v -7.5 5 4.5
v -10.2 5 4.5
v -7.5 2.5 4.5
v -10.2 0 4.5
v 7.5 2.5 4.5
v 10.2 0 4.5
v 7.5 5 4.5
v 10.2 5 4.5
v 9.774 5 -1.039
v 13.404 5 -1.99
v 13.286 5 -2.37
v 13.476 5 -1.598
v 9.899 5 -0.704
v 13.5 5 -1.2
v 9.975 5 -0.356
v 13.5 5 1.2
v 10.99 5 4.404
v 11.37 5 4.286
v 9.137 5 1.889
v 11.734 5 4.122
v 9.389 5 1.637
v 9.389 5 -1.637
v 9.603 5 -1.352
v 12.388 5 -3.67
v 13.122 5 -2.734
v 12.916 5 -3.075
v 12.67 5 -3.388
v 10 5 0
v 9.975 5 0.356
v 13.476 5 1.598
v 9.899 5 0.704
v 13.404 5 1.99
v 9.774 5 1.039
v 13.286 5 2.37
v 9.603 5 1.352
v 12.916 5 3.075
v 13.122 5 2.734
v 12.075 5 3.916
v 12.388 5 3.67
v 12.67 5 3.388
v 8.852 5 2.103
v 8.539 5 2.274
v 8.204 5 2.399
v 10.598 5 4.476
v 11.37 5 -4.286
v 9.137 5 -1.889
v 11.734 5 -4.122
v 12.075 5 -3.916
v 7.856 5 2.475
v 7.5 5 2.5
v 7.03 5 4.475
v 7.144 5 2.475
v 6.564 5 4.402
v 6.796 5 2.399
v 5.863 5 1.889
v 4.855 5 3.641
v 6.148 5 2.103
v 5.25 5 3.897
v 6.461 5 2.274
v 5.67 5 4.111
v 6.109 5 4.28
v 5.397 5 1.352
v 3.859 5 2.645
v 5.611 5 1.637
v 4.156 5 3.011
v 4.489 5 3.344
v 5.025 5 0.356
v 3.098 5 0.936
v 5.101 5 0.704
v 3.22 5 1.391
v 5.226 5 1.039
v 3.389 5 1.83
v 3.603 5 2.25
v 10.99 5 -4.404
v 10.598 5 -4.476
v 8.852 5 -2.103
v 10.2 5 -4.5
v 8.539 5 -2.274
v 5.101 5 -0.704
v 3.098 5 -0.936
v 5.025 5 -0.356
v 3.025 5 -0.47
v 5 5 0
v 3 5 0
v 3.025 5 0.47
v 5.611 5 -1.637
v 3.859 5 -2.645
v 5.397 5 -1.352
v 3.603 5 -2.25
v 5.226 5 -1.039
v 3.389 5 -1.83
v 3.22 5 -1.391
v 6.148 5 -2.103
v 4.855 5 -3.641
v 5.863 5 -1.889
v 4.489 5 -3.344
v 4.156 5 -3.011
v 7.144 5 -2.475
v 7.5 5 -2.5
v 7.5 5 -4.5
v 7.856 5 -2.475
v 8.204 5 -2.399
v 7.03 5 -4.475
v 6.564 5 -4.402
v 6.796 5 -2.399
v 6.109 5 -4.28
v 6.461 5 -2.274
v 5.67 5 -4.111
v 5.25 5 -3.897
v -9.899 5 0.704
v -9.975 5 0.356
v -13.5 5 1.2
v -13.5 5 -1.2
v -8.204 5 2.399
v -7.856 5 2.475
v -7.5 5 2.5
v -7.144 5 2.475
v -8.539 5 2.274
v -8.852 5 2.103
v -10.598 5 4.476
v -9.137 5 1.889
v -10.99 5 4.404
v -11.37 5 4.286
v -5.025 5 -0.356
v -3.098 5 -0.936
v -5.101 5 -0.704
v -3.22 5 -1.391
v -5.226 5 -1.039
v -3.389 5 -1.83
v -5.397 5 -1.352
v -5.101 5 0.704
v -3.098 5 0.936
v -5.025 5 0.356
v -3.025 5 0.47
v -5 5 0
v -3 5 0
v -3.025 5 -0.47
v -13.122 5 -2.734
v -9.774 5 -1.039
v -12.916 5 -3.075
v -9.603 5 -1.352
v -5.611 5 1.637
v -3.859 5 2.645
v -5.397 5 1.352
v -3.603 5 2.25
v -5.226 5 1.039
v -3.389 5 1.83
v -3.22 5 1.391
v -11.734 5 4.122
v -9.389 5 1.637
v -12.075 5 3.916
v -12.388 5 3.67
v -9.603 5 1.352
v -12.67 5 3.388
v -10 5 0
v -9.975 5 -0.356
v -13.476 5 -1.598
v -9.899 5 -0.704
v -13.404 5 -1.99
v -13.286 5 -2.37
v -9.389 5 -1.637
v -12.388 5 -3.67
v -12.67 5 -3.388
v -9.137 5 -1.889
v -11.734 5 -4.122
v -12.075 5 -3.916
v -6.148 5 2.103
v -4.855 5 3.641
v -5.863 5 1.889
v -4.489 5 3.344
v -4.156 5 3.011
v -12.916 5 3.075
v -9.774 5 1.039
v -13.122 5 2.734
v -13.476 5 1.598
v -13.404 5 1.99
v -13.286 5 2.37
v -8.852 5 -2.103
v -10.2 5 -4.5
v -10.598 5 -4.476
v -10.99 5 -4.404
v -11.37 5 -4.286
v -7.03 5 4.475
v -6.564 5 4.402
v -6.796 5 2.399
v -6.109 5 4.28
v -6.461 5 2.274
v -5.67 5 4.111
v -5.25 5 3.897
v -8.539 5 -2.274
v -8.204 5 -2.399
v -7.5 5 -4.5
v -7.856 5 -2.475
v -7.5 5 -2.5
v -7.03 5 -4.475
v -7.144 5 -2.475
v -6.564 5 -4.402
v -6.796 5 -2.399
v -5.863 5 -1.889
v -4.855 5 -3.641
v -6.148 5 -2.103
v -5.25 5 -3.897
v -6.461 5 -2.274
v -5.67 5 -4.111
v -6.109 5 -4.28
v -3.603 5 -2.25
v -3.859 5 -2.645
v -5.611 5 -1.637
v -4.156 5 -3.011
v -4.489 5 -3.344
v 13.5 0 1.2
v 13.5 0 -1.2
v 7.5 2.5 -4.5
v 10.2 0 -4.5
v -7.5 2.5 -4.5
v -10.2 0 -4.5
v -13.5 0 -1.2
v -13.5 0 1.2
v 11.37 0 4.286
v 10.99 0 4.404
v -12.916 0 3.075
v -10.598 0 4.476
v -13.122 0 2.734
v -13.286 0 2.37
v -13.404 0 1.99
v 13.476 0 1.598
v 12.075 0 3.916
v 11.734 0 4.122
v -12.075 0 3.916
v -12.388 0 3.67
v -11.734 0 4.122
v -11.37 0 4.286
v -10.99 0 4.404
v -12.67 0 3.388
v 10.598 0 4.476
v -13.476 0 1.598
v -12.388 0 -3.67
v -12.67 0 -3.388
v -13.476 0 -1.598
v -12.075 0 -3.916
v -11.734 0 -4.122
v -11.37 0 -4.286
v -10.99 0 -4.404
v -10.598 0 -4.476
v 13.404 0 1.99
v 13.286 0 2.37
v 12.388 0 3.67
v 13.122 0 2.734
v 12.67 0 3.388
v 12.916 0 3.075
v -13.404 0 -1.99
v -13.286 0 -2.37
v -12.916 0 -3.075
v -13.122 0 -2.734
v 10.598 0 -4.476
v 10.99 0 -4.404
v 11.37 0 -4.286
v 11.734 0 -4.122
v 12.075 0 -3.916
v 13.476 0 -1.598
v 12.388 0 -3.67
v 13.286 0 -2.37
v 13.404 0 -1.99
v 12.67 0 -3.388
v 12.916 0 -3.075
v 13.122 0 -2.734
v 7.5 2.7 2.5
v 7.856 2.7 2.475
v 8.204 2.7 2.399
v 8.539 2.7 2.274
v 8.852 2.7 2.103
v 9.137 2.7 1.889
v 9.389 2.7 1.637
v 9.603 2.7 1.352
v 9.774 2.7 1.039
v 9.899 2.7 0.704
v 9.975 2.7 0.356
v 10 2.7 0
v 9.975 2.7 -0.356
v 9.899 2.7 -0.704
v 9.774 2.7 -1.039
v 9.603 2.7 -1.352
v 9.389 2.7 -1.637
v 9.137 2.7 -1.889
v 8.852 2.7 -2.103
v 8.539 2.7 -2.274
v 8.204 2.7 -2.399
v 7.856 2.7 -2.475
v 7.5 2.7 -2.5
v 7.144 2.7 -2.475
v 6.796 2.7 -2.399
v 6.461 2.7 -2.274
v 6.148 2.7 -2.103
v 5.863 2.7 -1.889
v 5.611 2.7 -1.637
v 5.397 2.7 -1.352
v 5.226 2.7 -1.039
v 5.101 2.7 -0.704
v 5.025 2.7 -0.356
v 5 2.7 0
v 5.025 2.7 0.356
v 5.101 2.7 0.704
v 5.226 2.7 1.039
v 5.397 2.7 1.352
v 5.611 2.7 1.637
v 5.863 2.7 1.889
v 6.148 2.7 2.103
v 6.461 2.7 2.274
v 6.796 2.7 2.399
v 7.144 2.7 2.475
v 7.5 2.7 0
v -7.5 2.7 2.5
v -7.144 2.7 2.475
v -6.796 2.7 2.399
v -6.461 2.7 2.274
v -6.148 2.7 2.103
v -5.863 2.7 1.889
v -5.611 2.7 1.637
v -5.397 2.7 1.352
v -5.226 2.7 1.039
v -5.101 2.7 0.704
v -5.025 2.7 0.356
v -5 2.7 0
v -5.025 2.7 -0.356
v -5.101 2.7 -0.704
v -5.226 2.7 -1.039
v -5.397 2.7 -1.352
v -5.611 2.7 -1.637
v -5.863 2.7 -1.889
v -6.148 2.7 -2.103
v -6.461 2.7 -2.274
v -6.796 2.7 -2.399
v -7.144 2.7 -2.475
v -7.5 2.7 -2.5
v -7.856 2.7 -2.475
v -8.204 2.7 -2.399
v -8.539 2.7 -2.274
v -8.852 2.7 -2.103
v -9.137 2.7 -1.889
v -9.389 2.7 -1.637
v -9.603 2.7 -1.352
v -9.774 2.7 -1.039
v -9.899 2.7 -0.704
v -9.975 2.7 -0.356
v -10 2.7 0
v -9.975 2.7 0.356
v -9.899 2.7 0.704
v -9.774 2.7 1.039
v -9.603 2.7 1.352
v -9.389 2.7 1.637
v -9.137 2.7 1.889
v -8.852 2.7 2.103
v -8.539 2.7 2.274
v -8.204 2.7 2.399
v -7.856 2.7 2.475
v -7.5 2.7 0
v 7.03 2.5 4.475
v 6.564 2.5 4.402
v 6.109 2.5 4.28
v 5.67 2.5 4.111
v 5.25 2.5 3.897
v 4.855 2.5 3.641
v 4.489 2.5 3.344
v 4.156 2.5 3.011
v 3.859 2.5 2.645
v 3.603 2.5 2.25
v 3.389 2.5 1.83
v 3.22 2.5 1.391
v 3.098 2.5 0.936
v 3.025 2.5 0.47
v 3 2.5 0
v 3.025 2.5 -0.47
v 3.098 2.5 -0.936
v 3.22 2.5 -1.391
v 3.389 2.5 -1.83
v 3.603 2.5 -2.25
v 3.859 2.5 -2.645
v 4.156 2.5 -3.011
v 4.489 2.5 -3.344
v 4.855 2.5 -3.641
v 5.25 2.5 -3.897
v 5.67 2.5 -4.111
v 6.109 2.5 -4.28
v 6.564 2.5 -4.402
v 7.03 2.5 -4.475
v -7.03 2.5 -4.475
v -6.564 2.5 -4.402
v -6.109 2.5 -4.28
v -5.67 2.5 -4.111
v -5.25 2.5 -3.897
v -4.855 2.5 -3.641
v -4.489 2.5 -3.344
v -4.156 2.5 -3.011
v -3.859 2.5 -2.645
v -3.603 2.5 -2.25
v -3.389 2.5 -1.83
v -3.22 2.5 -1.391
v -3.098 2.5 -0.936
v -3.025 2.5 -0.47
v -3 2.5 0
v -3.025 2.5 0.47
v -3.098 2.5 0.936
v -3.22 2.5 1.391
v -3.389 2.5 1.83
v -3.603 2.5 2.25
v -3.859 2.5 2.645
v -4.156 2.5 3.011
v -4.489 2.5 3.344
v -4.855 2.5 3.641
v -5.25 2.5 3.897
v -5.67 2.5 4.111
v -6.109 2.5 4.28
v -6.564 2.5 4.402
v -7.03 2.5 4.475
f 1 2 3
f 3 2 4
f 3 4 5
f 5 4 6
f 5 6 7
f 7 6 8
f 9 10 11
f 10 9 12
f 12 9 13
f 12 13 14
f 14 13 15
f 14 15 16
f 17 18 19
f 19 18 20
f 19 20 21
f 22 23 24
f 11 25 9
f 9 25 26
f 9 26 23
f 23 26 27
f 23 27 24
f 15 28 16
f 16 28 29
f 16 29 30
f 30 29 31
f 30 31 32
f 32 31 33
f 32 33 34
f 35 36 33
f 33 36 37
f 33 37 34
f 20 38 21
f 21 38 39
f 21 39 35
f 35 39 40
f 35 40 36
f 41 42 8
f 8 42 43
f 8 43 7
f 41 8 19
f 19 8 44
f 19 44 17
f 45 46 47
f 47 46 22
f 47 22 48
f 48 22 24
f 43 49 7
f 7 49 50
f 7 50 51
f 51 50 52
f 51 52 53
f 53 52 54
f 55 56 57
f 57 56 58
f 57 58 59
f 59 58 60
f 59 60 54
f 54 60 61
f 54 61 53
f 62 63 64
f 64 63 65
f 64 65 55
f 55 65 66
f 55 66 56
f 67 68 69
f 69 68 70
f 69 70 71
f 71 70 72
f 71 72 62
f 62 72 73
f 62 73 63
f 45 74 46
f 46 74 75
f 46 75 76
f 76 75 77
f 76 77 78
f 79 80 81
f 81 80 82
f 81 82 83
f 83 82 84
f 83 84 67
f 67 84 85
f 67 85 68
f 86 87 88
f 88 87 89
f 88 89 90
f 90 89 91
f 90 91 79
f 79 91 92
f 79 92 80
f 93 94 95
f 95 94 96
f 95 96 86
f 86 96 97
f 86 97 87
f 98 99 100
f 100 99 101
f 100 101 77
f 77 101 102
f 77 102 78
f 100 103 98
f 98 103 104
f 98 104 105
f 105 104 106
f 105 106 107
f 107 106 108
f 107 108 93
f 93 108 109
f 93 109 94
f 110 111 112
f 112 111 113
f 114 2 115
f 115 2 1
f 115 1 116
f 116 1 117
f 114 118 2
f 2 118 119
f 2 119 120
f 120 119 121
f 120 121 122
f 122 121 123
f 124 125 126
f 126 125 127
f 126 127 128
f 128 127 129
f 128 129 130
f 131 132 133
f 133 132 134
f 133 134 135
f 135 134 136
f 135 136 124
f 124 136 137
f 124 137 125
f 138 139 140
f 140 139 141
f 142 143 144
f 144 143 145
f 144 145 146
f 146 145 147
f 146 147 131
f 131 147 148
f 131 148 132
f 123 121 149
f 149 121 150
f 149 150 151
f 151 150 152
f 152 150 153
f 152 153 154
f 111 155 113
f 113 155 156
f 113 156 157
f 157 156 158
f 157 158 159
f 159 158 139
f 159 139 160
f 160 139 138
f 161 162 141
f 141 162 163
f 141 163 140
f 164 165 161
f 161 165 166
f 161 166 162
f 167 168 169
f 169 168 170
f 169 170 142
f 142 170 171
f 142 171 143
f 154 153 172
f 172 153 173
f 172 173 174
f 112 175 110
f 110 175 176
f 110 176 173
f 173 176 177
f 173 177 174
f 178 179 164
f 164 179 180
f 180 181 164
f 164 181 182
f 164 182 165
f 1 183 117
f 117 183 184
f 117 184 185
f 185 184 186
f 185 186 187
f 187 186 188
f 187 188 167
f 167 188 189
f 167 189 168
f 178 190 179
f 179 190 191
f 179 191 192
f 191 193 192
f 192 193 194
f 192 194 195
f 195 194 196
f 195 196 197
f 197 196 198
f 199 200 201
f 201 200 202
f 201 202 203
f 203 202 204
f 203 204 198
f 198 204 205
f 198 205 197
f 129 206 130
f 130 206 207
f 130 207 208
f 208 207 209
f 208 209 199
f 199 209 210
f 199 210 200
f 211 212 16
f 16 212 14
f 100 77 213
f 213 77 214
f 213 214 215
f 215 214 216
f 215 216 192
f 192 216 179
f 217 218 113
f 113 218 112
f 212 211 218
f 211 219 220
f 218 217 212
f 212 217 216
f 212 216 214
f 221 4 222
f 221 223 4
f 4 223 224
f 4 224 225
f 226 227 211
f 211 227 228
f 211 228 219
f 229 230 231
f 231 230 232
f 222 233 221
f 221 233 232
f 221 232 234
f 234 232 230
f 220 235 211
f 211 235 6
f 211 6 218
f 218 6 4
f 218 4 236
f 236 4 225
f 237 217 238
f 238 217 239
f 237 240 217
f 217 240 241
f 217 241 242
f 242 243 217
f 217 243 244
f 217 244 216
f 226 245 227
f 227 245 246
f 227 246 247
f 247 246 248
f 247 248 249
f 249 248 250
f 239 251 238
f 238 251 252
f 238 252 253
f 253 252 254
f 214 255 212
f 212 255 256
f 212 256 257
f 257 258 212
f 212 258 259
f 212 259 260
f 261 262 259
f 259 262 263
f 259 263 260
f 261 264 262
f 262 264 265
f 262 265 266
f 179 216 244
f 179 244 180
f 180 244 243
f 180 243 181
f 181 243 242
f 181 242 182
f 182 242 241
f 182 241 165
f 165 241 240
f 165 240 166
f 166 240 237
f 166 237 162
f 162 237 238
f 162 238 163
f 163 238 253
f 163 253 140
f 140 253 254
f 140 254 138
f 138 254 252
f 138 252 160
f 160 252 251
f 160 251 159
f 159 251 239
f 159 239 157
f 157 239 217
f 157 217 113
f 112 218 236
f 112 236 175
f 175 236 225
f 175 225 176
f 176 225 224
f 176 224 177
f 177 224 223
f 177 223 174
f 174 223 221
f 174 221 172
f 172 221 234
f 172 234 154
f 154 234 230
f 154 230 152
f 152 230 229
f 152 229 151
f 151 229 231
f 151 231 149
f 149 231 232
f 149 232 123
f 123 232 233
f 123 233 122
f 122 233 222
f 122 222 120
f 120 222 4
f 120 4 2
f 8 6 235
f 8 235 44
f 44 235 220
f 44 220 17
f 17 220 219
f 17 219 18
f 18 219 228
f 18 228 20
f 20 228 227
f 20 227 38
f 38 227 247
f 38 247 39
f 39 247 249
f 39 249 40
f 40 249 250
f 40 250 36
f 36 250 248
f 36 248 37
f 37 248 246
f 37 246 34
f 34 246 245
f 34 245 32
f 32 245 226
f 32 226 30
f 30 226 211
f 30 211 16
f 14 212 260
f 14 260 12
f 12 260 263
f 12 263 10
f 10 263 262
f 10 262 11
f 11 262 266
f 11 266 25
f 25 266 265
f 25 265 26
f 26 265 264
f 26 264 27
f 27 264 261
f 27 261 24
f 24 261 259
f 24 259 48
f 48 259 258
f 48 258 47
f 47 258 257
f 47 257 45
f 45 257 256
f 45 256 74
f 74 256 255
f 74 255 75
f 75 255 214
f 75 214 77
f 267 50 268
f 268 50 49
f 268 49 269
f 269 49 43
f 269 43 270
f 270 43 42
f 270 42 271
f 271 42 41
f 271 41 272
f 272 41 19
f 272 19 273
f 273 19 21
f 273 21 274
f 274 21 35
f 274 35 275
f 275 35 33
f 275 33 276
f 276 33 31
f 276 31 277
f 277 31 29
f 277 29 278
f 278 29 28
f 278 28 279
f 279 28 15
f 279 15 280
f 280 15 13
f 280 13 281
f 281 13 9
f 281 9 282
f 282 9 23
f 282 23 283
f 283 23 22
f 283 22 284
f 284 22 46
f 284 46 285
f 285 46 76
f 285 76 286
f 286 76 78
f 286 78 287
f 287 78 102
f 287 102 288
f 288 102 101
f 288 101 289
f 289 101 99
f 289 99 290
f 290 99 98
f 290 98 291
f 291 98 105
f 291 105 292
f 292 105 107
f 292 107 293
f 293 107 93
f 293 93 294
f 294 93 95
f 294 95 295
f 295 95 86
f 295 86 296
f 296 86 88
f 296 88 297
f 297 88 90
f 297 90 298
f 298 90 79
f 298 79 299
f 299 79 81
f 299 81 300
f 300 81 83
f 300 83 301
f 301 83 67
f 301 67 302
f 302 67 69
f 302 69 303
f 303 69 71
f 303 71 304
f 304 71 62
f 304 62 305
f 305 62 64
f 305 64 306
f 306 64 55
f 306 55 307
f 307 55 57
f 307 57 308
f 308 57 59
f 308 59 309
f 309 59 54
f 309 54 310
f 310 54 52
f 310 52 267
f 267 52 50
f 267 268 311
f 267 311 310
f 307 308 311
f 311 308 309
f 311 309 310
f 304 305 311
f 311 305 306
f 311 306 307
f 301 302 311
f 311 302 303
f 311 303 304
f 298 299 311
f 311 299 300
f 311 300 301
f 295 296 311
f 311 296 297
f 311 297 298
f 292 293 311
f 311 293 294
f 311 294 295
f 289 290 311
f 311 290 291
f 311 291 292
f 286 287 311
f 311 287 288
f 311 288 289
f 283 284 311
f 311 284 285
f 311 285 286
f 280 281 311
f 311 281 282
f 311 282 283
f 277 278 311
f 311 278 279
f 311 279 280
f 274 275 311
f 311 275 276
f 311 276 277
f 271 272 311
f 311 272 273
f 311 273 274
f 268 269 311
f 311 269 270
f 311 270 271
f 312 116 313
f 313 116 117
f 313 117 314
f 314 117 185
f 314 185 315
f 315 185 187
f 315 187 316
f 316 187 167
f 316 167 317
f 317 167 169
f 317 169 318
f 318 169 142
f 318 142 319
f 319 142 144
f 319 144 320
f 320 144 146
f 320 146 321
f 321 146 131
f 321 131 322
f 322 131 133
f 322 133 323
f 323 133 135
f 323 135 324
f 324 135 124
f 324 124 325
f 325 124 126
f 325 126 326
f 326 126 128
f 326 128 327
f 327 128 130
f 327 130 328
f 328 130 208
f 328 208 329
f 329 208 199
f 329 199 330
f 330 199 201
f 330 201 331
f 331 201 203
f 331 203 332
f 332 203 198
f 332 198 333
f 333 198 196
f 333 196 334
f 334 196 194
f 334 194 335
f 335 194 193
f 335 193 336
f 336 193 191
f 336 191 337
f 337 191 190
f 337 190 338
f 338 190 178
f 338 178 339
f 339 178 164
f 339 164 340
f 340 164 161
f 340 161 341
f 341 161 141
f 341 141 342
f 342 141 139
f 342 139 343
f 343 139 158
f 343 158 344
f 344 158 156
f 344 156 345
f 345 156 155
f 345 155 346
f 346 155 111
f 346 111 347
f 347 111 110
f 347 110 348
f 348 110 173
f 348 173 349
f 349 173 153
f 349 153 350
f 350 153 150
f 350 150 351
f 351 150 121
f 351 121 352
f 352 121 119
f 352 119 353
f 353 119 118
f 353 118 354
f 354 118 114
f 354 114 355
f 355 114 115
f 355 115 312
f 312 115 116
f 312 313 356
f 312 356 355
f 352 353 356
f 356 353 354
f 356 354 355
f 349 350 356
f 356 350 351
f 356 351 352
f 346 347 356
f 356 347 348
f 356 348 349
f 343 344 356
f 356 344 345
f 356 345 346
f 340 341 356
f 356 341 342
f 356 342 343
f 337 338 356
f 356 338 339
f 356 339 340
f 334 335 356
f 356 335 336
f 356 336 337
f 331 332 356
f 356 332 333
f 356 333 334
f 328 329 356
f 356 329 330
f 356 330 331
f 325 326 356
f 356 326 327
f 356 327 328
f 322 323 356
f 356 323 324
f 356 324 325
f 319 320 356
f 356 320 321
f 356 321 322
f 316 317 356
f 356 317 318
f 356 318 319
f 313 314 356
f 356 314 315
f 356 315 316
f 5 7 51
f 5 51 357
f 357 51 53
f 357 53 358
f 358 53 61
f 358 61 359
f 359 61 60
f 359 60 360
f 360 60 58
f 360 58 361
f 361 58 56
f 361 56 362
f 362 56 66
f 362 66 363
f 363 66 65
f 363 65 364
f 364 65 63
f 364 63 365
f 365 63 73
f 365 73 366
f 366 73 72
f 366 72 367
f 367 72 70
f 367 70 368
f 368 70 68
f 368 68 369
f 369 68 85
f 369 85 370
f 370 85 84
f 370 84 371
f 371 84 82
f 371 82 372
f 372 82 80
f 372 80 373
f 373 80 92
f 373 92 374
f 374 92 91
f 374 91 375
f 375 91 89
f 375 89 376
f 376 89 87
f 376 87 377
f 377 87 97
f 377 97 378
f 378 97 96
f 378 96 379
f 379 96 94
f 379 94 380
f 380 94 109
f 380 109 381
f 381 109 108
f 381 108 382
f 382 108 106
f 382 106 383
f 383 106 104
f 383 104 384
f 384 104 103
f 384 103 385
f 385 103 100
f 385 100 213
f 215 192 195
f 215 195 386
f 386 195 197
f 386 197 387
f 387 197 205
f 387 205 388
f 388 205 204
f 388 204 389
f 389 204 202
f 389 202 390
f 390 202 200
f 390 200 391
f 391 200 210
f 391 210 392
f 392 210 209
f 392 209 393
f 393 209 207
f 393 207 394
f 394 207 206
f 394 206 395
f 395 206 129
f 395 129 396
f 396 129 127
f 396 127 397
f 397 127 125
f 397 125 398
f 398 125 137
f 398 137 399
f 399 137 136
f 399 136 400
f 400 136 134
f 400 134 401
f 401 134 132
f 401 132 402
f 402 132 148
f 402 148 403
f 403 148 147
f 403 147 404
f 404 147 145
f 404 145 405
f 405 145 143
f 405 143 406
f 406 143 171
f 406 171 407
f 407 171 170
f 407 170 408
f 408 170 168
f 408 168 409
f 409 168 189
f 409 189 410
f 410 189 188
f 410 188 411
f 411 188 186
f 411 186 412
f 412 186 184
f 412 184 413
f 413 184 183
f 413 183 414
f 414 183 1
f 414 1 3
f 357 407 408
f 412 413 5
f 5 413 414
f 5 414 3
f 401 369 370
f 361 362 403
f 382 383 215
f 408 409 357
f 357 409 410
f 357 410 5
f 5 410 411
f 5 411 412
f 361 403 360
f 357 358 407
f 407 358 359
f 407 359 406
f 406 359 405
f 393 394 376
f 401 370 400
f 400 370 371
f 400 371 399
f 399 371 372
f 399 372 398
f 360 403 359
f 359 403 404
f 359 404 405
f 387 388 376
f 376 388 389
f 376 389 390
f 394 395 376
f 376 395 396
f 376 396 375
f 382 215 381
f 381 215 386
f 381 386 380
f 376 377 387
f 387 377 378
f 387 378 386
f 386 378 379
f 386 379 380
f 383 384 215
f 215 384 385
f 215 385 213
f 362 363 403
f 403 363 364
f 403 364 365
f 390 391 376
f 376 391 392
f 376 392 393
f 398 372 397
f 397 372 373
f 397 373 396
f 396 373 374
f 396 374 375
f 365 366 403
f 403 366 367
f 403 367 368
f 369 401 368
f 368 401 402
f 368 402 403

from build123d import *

# Parameters (mm, degrees)
SKETCH1_W           = 27
SKETCH1_H           = 9
BOSS_EXTRUDE1_DEPTH = 5
FILLET1_R           = 3.3
SKETCH2_R           = 2.5
CUT_EXTRUDE1_DEPTH  = 2.3
CUT_EXTRUDE4_DEPTH  = 2.5


with BuildPart() as part:
    # Sketch1 → Boss-Extrude1 (new body)
    with BuildSketch(Plane(origin=(0, 0, 0), x_dir=(1, 0, 0), z_dir=(0, 1, 0))):
        Rectangle(SKETCH1_W, SKETCH1_H)
    extrude(amount=BOSS_EXTRUDE1_DEPTH)

    # Fillet1
    fillet1_edges = [part.edges().sort_by_distance(p)[0] for p in [
        (13.5, 2.5, 4.5),
        (-13.5, 2.5, 4.5),
        (-13.5, 2.5, -4.5),
        (13.5, 2.5, -4.5),
    ]]
    fillet(fillet1_edges, radius=FILLET1_R)

    # Sketch2 → Cut-Extrude1 (cut)
    with BuildSketch(Plane(origin=(0, 5, 0), x_dir=(1, 0, 0), z_dir=(0, 1, 0))):
        with Locations(Location((-7.5, 0, 0), (0, 0, 270))):
            Circle(SKETCH2_R)
        with Locations(Location((7.5, 0, 0), (0, 0, 270))):
            Circle(SKETCH2_R)
    extrude(amount=-CUT_EXTRUDE1_DEPTH, mode=Mode.SUBTRACT)

    # Sketch4 → Cut-Extrude4 (cut)
    with BuildSketch(Plane(origin=(0, 5, 0), x_dir=(1, 0, 0), z_dir=(0, 1, 0))):
        with BuildLine():
            ThreePointArc((-3, 0), (-4.318019485, -3.181980515), (-7.5, -4.5))
            Line((-7.5, -4.5), (7.499999999, -4.5))
            ThreePointArc((7.499999999, -4.5), (3, 0), (7.5, 4.5))
            Line((7.5, 4.5), (-7.5, 4.5))
            ThreePointArc((-7.5, 4.5), (-4.318019485, 3.181980515), (-3, 0))
        make_face()
    extrude(amount=-CUT_EXTRUDE4_DEPTH, mode=Mode.SUBTRACT)


solid = part.part
